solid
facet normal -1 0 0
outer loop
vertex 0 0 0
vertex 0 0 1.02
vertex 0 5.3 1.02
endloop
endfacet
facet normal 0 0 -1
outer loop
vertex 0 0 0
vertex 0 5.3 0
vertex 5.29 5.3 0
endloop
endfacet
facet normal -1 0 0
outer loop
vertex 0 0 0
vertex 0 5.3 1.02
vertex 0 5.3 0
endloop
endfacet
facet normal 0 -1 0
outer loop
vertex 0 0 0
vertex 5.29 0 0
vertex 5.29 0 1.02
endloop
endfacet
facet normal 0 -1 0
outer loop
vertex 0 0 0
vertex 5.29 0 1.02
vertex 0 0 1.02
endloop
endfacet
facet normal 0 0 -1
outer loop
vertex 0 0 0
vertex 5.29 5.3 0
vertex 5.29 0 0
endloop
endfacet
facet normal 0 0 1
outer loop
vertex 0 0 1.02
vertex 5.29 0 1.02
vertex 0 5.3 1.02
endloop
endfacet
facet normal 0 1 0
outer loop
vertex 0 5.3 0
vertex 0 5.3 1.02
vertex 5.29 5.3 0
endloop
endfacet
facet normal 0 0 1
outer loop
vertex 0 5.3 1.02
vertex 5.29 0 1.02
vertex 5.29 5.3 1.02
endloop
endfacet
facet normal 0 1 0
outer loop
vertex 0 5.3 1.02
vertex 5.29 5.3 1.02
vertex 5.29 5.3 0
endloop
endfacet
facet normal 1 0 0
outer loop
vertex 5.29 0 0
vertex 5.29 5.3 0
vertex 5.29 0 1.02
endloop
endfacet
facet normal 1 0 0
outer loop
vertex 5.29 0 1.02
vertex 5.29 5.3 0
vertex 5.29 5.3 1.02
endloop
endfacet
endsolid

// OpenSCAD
/* Warning, this is a very basic generator with a lot of approximation 
input data : [CSP, 75X, 5.29x5.30x1.02mm, 42, , B, C04-00533B]
generated by com.zoubworld.electronics.cad.model3d.Basic
Date : Sun Feb 15 10:50:48 CET 2026
*/

//body
color("black")
translate([0,0,0])
cube([5.29,5.3,1.02], center=false);
